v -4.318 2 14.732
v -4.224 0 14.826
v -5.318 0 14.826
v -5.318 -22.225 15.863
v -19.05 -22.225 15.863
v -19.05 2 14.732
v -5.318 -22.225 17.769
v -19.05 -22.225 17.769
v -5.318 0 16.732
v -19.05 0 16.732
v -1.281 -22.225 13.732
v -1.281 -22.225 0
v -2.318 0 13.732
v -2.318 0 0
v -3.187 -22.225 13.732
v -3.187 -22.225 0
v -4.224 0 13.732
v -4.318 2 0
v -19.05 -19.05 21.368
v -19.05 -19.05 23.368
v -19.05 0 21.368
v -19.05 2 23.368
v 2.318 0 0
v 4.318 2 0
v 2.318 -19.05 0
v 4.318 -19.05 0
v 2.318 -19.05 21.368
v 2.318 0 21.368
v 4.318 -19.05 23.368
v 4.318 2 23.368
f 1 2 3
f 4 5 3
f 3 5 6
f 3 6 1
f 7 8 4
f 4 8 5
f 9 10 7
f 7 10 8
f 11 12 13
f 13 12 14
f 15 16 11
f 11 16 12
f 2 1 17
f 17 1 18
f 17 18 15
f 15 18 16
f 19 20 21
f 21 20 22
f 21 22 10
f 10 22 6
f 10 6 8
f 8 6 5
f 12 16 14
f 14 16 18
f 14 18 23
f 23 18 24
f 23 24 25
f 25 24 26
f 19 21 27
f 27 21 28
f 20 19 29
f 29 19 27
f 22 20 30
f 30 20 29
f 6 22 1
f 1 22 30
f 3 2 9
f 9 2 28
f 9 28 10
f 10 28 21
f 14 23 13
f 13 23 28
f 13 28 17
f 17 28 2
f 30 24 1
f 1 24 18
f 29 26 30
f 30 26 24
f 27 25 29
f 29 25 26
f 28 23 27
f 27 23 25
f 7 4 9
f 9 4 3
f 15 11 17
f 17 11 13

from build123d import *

# Parameters (mm, degrees)
SKETCH3_W          = 4.037166667
SKETCH3_H          = 4.037166667
CUT_EXTRUDE1_DEPTH = 38.455371645


with BuildPart() as part:
    # Sweep1: sweep along a path in Sketch2
    with BuildLine(Plane(origin=(0, 0, 0), x_dir=(1, 0, 0), z_dir=(0, 1, 0))) as sweep1_path:
        Line((0, 0), (0, -19.05))
        Line((0, -19.05), (-19.05, -19.05))
    # Sketch1 → Sweep1 (sweep)
    with BuildSketch(Plane.XY):
        Polygon((2.31775, -19.05), (4.31775, -19.05), (4.31775, 2), (-4.31775, 2), (-3.18725, -22.225), (-1.280583333, -22.225), (-2.31775, 0), (2.31775, 0), align=None)
    sweep(path=sweep1_path.line, transition=Transition.RIGHT)

    # Sketch3 → Cut-Extrude1 (cut, through all)
    with BuildSketch(Plane.XZ):
        with Locations((-3.299166667, 15.750833334)):
            Rectangle(SKETCH3_W, SKETCH3_H)
    extrude(amount=CUT_EXTRUDE1_DEPTH, mode=Mode.SUBTRACT)


solid = part.part
